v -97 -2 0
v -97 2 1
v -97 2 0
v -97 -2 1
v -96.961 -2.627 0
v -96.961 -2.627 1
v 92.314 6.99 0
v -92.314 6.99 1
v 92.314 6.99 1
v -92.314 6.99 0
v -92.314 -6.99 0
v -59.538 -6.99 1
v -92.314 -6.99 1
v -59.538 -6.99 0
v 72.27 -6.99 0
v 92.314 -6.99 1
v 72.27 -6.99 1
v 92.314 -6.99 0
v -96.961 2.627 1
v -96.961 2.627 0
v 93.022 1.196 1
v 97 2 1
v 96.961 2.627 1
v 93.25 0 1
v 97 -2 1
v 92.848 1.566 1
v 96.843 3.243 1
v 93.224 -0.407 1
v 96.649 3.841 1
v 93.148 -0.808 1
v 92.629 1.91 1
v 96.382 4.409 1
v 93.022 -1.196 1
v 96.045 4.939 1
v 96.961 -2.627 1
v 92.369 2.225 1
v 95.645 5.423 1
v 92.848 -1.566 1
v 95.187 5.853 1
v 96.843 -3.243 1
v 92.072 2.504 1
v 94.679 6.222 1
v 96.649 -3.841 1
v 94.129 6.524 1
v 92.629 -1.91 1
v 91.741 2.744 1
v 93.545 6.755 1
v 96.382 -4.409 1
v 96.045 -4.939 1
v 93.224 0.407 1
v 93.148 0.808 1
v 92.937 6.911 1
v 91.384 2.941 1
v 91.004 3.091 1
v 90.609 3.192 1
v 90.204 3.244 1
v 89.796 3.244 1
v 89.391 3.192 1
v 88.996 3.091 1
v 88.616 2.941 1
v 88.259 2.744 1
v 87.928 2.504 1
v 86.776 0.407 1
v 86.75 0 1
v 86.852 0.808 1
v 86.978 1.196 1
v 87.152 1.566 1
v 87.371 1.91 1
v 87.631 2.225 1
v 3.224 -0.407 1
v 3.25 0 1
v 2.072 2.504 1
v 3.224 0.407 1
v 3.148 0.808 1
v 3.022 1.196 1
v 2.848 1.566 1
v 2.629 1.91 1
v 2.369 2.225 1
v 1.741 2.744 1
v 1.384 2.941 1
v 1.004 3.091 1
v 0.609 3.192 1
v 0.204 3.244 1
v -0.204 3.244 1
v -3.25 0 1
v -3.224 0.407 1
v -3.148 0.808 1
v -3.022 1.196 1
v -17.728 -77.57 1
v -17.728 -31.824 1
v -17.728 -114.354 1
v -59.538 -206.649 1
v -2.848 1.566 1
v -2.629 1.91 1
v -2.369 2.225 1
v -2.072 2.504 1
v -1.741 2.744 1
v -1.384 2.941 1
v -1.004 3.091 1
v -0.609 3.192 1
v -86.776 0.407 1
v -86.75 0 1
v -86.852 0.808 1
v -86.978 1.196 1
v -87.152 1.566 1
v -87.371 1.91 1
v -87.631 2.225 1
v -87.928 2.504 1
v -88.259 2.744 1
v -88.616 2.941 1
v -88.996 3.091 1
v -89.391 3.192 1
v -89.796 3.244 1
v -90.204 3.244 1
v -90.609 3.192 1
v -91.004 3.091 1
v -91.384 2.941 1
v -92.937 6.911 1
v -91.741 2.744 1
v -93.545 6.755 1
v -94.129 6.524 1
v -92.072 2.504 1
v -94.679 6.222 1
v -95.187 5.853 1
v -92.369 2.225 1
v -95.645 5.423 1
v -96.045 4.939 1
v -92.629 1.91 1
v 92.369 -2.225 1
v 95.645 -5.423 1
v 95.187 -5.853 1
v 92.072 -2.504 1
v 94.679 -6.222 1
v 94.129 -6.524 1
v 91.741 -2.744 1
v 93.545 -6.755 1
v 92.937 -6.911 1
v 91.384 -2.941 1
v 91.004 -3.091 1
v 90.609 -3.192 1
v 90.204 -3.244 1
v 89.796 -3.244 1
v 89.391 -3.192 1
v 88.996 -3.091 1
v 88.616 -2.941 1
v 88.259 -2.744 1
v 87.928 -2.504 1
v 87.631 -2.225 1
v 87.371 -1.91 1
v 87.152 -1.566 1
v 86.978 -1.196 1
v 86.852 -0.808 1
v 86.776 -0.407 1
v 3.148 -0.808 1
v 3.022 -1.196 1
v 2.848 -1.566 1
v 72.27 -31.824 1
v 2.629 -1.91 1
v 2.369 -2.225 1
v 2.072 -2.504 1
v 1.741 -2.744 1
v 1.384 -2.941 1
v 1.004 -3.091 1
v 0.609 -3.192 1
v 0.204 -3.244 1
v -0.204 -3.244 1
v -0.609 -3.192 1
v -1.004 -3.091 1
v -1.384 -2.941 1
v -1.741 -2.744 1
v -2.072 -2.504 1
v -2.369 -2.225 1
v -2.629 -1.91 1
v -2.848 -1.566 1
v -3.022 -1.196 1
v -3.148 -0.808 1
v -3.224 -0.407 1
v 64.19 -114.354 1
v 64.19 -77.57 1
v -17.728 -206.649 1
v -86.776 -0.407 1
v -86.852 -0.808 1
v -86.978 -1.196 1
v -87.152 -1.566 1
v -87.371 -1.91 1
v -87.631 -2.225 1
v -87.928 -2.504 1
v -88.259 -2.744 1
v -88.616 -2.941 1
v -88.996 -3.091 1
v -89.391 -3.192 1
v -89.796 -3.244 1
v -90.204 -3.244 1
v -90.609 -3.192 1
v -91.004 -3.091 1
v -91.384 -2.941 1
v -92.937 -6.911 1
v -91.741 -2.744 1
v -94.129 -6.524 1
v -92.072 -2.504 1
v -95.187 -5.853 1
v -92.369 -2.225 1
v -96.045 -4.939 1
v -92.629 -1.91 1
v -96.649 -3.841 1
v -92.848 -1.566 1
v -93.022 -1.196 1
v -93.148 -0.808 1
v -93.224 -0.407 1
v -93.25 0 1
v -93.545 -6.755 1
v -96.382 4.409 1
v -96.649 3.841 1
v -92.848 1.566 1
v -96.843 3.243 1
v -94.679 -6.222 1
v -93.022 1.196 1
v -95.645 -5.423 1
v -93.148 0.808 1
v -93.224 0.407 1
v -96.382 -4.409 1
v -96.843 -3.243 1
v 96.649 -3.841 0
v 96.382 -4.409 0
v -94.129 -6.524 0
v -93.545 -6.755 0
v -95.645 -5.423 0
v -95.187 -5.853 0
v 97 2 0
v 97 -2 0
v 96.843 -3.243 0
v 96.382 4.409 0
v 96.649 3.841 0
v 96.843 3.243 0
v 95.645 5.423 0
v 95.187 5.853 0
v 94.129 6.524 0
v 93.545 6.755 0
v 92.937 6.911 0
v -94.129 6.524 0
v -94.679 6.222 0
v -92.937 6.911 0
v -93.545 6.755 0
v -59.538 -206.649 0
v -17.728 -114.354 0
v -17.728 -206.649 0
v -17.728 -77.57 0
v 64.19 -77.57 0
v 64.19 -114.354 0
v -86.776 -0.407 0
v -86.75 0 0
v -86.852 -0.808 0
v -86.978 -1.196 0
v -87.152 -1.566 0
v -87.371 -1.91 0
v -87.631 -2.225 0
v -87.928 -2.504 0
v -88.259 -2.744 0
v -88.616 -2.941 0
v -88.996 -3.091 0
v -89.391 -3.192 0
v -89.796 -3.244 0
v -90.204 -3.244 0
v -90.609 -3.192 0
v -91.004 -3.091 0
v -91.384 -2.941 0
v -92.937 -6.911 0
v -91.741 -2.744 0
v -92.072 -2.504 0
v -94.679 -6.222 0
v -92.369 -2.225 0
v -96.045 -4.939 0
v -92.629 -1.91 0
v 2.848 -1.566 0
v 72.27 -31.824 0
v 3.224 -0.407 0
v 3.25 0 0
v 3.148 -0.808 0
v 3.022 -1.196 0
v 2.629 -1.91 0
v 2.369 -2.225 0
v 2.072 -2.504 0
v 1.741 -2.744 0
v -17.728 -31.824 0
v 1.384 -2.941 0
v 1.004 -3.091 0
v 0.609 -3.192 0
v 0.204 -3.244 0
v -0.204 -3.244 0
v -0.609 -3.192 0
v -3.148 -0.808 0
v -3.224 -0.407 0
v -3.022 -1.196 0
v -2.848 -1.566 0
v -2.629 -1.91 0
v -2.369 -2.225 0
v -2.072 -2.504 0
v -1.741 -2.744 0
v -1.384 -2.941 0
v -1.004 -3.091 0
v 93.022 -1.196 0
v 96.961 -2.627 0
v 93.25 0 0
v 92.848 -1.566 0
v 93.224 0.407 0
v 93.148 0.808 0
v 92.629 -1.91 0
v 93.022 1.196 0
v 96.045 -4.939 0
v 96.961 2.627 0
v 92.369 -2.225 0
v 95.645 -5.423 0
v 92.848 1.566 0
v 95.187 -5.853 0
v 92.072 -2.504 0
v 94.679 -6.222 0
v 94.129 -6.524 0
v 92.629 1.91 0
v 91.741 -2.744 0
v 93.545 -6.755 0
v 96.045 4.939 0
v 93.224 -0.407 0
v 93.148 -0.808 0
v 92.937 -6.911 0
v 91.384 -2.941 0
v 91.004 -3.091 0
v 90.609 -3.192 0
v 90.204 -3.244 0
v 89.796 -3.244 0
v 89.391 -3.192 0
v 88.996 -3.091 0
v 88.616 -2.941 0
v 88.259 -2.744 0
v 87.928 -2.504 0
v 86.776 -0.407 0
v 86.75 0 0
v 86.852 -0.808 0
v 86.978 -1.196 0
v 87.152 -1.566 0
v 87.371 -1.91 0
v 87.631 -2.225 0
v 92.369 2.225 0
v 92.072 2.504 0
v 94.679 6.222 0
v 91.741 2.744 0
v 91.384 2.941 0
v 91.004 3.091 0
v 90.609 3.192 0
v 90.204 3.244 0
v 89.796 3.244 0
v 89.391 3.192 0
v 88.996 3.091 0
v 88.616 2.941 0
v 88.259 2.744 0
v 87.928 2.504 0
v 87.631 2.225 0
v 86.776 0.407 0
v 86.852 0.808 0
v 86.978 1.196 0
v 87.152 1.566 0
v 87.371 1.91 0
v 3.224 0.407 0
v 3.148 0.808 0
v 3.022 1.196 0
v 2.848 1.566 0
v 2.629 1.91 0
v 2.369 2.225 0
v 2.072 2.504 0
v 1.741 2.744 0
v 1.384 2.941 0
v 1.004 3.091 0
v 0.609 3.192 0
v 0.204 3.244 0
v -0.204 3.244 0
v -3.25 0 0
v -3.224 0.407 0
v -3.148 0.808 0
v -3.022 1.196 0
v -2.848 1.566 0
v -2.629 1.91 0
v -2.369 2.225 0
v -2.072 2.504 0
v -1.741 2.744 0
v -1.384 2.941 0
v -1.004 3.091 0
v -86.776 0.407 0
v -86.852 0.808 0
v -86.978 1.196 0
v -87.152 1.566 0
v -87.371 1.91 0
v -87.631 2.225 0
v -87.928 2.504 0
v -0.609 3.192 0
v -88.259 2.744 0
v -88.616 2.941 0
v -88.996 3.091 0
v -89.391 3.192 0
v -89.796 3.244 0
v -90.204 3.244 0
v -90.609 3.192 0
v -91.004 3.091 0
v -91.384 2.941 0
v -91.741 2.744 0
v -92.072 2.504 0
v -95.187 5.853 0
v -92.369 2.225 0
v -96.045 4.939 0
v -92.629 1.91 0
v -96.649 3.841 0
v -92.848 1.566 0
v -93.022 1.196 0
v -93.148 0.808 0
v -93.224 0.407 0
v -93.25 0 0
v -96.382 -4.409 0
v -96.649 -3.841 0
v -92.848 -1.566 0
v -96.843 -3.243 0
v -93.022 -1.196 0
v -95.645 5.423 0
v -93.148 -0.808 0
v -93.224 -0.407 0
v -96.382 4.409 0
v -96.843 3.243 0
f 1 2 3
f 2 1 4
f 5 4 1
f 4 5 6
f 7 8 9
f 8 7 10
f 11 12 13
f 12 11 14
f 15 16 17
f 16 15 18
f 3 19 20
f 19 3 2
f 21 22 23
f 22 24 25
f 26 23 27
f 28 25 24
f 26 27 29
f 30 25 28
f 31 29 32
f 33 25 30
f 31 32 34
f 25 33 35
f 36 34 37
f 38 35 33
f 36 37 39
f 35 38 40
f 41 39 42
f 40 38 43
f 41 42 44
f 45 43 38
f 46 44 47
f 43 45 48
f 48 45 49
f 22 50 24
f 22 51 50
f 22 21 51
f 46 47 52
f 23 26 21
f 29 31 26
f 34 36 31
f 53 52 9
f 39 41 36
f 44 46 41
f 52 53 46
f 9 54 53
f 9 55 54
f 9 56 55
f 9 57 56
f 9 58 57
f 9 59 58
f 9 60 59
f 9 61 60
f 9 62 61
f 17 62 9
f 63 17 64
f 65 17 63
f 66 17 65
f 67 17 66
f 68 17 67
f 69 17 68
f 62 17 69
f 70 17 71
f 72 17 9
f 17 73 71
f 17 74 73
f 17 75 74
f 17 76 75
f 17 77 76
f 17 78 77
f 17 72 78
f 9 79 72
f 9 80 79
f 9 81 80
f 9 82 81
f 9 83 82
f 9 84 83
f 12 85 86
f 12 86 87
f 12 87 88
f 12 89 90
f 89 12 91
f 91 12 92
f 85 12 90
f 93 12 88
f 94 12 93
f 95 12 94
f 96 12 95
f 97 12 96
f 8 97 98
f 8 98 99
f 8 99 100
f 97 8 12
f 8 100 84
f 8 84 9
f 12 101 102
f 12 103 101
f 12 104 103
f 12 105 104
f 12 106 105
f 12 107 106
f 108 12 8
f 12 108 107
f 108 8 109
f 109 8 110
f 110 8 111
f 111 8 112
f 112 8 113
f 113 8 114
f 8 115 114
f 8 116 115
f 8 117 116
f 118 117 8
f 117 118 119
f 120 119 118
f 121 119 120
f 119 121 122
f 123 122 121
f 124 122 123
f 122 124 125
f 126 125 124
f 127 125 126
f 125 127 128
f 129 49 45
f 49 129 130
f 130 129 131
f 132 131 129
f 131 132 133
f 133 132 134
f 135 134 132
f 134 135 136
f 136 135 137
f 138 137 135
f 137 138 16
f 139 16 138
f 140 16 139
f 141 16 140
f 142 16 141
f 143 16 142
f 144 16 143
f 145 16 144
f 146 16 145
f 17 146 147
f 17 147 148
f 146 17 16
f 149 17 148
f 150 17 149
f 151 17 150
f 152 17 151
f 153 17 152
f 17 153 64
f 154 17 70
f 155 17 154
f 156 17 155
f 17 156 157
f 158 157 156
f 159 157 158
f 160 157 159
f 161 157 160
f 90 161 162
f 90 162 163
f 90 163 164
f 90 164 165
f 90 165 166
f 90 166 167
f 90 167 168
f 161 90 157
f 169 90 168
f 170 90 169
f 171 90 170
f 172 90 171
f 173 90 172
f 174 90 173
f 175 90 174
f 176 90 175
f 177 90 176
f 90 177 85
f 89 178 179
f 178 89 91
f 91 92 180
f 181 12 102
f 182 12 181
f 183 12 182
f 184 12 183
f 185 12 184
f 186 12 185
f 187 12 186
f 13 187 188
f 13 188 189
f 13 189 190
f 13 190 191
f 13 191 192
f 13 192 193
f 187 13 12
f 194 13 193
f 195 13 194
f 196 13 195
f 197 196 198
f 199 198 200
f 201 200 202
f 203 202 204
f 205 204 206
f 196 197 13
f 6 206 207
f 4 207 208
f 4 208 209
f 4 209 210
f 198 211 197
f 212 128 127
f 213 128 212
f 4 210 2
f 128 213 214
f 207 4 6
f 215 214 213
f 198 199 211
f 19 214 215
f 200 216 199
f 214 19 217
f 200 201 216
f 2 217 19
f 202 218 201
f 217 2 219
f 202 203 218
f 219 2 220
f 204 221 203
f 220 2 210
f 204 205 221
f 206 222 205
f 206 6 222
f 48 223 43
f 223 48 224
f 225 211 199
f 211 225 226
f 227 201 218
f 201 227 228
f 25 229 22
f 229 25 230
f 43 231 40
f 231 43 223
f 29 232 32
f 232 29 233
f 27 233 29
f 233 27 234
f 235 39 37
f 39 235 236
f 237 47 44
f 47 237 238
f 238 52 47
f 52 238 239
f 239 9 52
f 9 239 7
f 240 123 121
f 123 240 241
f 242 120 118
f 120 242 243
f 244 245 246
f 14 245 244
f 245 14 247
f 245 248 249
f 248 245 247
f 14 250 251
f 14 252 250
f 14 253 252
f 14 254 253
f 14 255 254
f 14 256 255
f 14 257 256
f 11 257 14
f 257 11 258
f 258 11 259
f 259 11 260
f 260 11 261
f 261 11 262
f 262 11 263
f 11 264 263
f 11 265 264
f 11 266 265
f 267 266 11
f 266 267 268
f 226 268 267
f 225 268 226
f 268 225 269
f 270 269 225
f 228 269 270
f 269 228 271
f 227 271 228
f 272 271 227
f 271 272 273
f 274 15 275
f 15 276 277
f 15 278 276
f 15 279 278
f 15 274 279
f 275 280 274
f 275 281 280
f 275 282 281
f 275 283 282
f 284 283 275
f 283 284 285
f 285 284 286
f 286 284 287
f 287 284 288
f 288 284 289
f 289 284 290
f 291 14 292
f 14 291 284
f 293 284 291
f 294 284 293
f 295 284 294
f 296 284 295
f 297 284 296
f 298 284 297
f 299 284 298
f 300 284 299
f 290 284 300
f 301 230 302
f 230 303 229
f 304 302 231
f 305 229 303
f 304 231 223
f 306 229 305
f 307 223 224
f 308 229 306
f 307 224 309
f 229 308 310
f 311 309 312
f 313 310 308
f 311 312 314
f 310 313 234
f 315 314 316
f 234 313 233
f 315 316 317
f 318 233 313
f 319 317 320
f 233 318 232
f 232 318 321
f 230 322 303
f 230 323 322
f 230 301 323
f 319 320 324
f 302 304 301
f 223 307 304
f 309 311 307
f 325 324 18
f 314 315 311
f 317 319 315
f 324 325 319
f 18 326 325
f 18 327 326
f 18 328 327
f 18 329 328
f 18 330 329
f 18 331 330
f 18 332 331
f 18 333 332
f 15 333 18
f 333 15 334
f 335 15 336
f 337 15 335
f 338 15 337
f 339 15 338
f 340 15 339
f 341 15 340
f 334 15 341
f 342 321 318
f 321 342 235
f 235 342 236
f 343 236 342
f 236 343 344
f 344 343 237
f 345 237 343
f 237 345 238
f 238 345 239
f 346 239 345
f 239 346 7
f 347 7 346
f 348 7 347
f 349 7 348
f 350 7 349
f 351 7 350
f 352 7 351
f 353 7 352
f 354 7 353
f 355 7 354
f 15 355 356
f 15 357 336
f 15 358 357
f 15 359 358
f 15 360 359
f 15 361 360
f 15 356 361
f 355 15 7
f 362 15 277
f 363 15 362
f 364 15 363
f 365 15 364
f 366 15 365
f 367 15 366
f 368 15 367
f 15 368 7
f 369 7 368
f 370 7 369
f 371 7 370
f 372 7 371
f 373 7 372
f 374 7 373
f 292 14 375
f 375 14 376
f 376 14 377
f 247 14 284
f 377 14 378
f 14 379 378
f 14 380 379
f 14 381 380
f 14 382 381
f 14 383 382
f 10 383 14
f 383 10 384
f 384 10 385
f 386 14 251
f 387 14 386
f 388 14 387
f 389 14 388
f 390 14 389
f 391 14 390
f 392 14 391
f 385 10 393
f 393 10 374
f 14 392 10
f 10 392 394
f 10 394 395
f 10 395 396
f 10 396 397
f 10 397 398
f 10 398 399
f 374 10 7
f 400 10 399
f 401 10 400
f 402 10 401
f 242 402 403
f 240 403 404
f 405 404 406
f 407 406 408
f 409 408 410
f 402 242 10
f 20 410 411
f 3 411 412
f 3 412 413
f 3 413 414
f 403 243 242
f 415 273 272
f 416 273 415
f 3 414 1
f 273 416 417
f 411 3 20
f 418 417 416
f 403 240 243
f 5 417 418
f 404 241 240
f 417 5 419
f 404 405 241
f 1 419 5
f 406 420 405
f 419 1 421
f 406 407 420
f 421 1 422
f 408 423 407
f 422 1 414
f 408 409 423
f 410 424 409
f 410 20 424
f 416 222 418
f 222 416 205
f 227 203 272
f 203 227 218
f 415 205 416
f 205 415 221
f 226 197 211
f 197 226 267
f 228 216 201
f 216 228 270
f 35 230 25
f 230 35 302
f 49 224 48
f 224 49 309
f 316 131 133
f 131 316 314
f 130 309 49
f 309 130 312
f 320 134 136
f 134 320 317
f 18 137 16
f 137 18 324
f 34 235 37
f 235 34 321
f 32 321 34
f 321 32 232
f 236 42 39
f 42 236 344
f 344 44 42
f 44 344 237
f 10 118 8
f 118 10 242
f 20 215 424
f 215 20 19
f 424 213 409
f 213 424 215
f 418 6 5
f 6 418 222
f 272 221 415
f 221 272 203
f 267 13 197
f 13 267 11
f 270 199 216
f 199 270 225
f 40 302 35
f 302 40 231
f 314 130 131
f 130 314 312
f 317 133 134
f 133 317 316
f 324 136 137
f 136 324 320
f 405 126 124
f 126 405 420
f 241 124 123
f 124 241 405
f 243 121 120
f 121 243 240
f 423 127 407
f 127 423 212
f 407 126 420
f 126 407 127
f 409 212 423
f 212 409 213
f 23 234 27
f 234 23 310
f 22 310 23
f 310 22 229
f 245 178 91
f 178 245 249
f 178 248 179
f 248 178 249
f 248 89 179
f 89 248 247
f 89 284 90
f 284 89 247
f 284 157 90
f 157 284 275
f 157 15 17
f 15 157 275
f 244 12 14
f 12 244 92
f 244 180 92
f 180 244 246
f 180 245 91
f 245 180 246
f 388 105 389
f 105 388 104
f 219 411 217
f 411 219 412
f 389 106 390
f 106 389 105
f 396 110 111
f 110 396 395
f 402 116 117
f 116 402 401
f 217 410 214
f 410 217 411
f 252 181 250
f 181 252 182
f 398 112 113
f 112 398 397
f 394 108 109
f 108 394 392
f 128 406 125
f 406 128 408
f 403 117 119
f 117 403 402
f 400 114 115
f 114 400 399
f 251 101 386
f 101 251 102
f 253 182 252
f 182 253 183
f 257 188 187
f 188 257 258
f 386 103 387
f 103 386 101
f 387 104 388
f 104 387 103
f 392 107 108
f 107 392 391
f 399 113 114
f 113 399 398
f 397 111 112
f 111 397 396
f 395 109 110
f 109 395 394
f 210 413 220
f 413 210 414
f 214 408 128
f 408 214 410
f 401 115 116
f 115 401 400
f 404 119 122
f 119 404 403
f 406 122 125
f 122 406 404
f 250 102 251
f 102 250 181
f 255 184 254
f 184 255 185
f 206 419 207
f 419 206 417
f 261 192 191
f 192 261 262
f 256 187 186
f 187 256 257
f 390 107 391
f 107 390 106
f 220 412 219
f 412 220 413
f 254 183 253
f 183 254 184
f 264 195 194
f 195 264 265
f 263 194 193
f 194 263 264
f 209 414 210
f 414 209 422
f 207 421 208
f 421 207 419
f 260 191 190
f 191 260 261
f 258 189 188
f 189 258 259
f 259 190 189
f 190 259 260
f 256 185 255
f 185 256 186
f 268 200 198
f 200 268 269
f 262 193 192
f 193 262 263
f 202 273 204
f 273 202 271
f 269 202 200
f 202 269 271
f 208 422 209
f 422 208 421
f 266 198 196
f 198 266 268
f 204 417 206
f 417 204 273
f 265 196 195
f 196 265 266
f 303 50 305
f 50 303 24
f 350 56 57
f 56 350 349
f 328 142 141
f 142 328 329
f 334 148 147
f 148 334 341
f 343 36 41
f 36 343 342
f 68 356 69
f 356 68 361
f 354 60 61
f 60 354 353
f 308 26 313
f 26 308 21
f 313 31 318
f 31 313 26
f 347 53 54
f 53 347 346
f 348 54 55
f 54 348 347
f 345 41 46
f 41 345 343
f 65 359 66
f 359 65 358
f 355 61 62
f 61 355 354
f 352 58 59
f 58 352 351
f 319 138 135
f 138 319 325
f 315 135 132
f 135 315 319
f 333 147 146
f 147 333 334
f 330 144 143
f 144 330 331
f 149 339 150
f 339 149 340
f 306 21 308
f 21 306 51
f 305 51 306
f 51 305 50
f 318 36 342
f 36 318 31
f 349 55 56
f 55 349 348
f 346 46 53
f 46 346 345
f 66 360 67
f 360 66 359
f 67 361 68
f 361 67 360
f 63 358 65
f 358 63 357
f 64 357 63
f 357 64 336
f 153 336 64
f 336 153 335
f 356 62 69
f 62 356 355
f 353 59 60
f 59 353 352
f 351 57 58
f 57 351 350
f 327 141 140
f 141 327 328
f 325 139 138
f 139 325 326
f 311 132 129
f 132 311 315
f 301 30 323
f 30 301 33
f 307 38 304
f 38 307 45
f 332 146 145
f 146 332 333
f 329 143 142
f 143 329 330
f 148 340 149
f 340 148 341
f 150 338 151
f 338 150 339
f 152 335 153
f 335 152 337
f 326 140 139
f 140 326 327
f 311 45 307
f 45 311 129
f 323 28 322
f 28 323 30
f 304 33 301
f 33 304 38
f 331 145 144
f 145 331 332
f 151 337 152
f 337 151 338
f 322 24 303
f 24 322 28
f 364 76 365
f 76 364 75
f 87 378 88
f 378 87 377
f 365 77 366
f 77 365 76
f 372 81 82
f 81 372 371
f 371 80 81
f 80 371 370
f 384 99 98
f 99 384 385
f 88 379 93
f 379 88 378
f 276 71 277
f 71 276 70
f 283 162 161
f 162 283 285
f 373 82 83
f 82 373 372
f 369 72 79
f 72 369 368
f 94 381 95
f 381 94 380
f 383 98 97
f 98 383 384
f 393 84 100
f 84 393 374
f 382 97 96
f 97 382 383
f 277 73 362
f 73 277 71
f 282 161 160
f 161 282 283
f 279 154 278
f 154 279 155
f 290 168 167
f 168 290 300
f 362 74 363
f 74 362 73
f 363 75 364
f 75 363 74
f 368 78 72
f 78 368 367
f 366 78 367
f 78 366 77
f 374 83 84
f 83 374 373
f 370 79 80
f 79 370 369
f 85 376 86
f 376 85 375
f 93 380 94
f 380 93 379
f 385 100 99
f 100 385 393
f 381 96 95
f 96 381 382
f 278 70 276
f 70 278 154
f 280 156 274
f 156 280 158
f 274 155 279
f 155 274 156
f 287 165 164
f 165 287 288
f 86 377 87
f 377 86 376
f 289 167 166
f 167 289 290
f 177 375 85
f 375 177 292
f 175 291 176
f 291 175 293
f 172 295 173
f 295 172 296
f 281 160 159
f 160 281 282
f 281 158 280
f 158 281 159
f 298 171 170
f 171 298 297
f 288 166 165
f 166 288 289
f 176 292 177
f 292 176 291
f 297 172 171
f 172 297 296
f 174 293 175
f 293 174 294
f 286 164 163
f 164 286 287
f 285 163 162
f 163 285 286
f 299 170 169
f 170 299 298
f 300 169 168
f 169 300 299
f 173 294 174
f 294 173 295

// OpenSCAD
$fn = 50;


difference() {
	union() {
		translate(v = [0, 0, 0]) {
			rotate(a = [0, 0, 0]) {
				hull() {
					translate(v = [-92.0000000000, 2.0000000000, 0]) {
						rotate(a = [0, 0, 0]) {
							translate(v = [0, 0, 0]) {
								rotate(a = [0, 0, 0]) {
									cylinder(h = 1, r = 5);
								}
							}
						}
					}
					translate(v = [92.0000000000, 2.0000000000, 0]) {
						rotate(a = [0, 0, 0]) {
							translate(v = [0, 0, 0]) {
								rotate(a = [0, 0, 0]) {
									cylinder(h = 1, r = 5);
								}
							}
						}
					}
					translate(v = [-92.0000000000, -2.0000000000, 0]) {
						rotate(a = [0, 0, 0]) {
							translate(v = [0, 0, 0]) {
								rotate(a = [0, 0, 0]) {
									cylinder(h = 1, r = 5);
								}
							}
						}
					}
					translate(v = [92.0000000000, -2.0000000000, 0]) {
						rotate(a = [0, 0, 0]) {
							translate(v = [0, 0, 0]) {
								rotate(a = [0, 0, 0]) {
									cylinder(h = 1, r = 5);
								}
							}
						}
					}
				}
			}
		}
		translate(v = [0, 0, 0]) {
			rotate(a = [0, 0, 0]) {
				linear_extrude(height = 1) {
					text(font = "DejaVu Sans Mono:style=Bold", halign = "center", size = 209.0000000000, text = "F", valign = "top");
				}
			}
		}
	}
	union() {
		translate(v = [-90.0000000000, 0.0000000000, -125.0000000000]) {
			rotate(a = [0, 0, 0]) {
				cylinder(h = 250, r = 3.2500000000);
			}
		}
		translate(v = [90.0000000000, 0.0000000000, -125.0000000000]) {
			rotate(a = [0, 0, 0]) {
				cylinder(h = 250, r = 3.2500000000);
			}
		}
		translate(v = [90.0000000000, 0.0000000000, -125.0000000000]) {
			rotate(a = [0, 0, 0]) {
				cylinder(h = 250, r = 3.2500000000);
			}
		}
		translate(v = [0, 0, -125.0000000000]) {
			rotate(a = [0, 0, 0]) {
				cylinder(h = 250, r = 3.2500000000);
			}
		}
	}
}
